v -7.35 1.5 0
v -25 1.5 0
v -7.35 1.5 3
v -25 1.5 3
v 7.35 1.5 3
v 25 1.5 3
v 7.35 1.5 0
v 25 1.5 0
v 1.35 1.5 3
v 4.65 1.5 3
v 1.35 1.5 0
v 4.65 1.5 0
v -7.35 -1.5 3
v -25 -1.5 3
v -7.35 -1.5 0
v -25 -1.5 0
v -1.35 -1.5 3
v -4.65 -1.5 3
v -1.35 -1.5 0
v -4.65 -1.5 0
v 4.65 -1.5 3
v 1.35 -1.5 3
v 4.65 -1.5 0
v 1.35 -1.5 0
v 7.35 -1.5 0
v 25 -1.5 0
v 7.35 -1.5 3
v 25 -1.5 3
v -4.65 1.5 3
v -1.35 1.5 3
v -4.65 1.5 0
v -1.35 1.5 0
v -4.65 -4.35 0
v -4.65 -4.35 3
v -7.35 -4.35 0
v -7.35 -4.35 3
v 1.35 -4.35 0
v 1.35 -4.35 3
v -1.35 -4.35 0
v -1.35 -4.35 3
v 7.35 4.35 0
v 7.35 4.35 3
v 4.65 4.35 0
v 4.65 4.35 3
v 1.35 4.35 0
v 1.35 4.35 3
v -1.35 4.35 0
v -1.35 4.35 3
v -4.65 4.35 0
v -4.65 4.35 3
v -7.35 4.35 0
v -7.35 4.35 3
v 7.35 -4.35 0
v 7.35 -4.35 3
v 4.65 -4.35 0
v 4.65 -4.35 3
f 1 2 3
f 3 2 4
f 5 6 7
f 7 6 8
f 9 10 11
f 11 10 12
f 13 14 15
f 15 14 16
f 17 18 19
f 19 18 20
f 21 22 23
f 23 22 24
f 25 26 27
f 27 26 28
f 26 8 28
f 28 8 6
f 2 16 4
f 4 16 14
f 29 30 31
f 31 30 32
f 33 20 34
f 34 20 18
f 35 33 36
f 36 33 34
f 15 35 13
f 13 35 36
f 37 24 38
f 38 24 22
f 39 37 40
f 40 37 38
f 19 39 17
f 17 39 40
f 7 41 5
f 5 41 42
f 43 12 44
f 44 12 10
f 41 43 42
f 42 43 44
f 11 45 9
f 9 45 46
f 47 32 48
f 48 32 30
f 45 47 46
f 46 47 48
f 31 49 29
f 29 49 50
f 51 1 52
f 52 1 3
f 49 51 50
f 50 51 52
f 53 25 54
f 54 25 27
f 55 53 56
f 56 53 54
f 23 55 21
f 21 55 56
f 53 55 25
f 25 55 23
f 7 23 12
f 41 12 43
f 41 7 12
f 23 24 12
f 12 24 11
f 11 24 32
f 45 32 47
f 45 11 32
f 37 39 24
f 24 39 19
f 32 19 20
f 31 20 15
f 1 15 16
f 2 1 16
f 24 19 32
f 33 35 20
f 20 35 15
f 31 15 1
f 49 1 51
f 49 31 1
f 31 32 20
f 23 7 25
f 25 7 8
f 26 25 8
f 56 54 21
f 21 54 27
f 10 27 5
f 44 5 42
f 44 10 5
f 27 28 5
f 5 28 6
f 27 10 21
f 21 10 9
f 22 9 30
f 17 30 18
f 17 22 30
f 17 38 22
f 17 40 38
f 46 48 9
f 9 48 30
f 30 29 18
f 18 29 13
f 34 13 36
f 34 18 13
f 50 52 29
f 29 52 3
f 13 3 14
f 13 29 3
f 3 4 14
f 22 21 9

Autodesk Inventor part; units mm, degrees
ref_plane "YZ Plane" through (0, 0, 0) normal (1, 0, 0) x (0, 1, 0)
ref_plane "XZ Plane" through (0, 0, 0) normal (0, 1, 0) x (-1, 0, 0)
ref_plane "XY Plane" through (0, 0, 0) normal (0, 0, 1) x (1, 0, 0)
sketch "tabs" plane through (0, 0, 0) normal (0, 0, 1) x (1, 0, 0)
  line L0 (16.0425, 13.6368) -> (18.7425, 13.6368)
  line L1 (18.7425, 13.6368) -> (18.7425, 10.7868)
  line L2 (18.7425, 10.7868) -> (16.0425, 10.7868)
  line L3 (16.0425, 10.7868) -> (16.0425, 13.6368)
  line L4 (22.0425, 13.6368) -> (24.7425, 13.6368)
  line L5 (24.7425, 13.6368) -> (24.7425, 10.7868)
  line L6 (24.7425, 10.7868) -> (22.0425, 10.7868)
  line L7 (22.0425, 10.7868) -> (22.0425, 13.6368)
  line L8 (28.0425, 13.6368) -> (30.7425, 13.6368)
  line L9 (30.7425, 13.6368) -> (30.7425, 10.7868)
  line L10 (30.7425, 10.7868) -> (28.0425, 10.7868)
  line L11 (28.0425, 10.7868) -> (28.0425, 13.6368)
  line L12 (23.3925, 10.7868) -> (23.3925, 8.8536) construction
  point P0 (23.3925, 12.1901)
  dimension "d2" = 2.7
  dimension "d3" = 3.3
  dimension "d4" = 3.3
  dimension "d5" = 2.85
sketch "Sketch1" plane through (0, 0, 0) normal (0, 0, 1) x (1, 0, 0)
  line L0 (-25, 1.5) -> (25, 1.5)
  line L1 (25, 1.5) -> (25, -1.5)
  line L2 (25, -1.5) -> (-25, -1.5)
  line L3 (-25, -1.5) -> (-25, 1.5)
  line L4 (0, 16.9043) -> (0, -20.0235) construction
  line L5 (-32.3473, 0) -> (40.4078, 0) construction
  line L6 (-7.35, 4.35) -> (-4.65, 4.35)
  line L7 (-4.65, 4.35) -> (-4.65, 1.5)
  line L8 (-4.65, 1.5) -> (-7.35, 1.5)
  line L9 (-7.35, 1.5) -> (-7.35, 4.35)
  line L10 (-1.35, 4.35) -> (1.35, 4.35)
  line L11 (1.35, 4.35) -> (1.35, 1.5)
  line L12 (1.35, 1.5) -> (-1.35, 1.5)
  line L13 (-1.35, 1.5) -> (-1.35, 4.35)
  line L14 (4.65, 4.35) -> (7.35, 4.35)
  line L15 (7.35, 4.35) -> (7.35, 1.5)
  line L16 (7.35, 1.5) -> (4.65, 1.5)
  line L17 (4.65, 1.5) -> (4.65, 4.35)
  line L18 (0, 1.5) -> (0, -0.4332) construction
  line L19 (-7.35, -1.5) -> (-4.65, -1.5)
  line L20 (-4.65, -1.5) -> (-4.65, -4.35)
  line L21 (-4.65, -4.35) -> (-7.35, -4.35)
  line L22 (-7.35, -4.35) -> (-7.35, -1.5)
  line L23 (-1.35, -1.5) -> (1.35, -1.5)
  line L24 (1.35, -1.5) -> (1.35, -4.35)
  line L25 (1.35, -4.35) -> (-1.35, -4.35)
  line L26 (-1.35, -4.35) -> (-1.35, -1.5)
  line L27 (4.65, -1.5) -> (7.35, -1.5)
  line L28 (7.35, -1.5) -> (7.35, -4.35)
  line L29 (7.35, -4.35) -> (4.65, -4.35)
  line L30 (4.65, -4.35) -> (4.65, -1.5)
  line L31 (0, -4.35) -> (0, -6.2832) construction
  point P0 (0, 0)
  point P1 (0, 1.5)
  point P2 (25, 0)
  dimension "d0" = 50
  dimension "d1" = 3
extrude "Extrusion1" add sketch "Sketch1" along normal blind 3
equation "\"d2\" = mat + kerf"
equation "\"d3\" = mat - kerf"
equation "\"d4\" = mat - kerf"
equation "\"d5\" = mat + 0.5 * kerf"
equation "\"d1\" = mat"
equation "\"d6\" = mat"
equation "\"mat\" = 3"
equation "\"kerf\" = -0.3"
properties part number "link1"
